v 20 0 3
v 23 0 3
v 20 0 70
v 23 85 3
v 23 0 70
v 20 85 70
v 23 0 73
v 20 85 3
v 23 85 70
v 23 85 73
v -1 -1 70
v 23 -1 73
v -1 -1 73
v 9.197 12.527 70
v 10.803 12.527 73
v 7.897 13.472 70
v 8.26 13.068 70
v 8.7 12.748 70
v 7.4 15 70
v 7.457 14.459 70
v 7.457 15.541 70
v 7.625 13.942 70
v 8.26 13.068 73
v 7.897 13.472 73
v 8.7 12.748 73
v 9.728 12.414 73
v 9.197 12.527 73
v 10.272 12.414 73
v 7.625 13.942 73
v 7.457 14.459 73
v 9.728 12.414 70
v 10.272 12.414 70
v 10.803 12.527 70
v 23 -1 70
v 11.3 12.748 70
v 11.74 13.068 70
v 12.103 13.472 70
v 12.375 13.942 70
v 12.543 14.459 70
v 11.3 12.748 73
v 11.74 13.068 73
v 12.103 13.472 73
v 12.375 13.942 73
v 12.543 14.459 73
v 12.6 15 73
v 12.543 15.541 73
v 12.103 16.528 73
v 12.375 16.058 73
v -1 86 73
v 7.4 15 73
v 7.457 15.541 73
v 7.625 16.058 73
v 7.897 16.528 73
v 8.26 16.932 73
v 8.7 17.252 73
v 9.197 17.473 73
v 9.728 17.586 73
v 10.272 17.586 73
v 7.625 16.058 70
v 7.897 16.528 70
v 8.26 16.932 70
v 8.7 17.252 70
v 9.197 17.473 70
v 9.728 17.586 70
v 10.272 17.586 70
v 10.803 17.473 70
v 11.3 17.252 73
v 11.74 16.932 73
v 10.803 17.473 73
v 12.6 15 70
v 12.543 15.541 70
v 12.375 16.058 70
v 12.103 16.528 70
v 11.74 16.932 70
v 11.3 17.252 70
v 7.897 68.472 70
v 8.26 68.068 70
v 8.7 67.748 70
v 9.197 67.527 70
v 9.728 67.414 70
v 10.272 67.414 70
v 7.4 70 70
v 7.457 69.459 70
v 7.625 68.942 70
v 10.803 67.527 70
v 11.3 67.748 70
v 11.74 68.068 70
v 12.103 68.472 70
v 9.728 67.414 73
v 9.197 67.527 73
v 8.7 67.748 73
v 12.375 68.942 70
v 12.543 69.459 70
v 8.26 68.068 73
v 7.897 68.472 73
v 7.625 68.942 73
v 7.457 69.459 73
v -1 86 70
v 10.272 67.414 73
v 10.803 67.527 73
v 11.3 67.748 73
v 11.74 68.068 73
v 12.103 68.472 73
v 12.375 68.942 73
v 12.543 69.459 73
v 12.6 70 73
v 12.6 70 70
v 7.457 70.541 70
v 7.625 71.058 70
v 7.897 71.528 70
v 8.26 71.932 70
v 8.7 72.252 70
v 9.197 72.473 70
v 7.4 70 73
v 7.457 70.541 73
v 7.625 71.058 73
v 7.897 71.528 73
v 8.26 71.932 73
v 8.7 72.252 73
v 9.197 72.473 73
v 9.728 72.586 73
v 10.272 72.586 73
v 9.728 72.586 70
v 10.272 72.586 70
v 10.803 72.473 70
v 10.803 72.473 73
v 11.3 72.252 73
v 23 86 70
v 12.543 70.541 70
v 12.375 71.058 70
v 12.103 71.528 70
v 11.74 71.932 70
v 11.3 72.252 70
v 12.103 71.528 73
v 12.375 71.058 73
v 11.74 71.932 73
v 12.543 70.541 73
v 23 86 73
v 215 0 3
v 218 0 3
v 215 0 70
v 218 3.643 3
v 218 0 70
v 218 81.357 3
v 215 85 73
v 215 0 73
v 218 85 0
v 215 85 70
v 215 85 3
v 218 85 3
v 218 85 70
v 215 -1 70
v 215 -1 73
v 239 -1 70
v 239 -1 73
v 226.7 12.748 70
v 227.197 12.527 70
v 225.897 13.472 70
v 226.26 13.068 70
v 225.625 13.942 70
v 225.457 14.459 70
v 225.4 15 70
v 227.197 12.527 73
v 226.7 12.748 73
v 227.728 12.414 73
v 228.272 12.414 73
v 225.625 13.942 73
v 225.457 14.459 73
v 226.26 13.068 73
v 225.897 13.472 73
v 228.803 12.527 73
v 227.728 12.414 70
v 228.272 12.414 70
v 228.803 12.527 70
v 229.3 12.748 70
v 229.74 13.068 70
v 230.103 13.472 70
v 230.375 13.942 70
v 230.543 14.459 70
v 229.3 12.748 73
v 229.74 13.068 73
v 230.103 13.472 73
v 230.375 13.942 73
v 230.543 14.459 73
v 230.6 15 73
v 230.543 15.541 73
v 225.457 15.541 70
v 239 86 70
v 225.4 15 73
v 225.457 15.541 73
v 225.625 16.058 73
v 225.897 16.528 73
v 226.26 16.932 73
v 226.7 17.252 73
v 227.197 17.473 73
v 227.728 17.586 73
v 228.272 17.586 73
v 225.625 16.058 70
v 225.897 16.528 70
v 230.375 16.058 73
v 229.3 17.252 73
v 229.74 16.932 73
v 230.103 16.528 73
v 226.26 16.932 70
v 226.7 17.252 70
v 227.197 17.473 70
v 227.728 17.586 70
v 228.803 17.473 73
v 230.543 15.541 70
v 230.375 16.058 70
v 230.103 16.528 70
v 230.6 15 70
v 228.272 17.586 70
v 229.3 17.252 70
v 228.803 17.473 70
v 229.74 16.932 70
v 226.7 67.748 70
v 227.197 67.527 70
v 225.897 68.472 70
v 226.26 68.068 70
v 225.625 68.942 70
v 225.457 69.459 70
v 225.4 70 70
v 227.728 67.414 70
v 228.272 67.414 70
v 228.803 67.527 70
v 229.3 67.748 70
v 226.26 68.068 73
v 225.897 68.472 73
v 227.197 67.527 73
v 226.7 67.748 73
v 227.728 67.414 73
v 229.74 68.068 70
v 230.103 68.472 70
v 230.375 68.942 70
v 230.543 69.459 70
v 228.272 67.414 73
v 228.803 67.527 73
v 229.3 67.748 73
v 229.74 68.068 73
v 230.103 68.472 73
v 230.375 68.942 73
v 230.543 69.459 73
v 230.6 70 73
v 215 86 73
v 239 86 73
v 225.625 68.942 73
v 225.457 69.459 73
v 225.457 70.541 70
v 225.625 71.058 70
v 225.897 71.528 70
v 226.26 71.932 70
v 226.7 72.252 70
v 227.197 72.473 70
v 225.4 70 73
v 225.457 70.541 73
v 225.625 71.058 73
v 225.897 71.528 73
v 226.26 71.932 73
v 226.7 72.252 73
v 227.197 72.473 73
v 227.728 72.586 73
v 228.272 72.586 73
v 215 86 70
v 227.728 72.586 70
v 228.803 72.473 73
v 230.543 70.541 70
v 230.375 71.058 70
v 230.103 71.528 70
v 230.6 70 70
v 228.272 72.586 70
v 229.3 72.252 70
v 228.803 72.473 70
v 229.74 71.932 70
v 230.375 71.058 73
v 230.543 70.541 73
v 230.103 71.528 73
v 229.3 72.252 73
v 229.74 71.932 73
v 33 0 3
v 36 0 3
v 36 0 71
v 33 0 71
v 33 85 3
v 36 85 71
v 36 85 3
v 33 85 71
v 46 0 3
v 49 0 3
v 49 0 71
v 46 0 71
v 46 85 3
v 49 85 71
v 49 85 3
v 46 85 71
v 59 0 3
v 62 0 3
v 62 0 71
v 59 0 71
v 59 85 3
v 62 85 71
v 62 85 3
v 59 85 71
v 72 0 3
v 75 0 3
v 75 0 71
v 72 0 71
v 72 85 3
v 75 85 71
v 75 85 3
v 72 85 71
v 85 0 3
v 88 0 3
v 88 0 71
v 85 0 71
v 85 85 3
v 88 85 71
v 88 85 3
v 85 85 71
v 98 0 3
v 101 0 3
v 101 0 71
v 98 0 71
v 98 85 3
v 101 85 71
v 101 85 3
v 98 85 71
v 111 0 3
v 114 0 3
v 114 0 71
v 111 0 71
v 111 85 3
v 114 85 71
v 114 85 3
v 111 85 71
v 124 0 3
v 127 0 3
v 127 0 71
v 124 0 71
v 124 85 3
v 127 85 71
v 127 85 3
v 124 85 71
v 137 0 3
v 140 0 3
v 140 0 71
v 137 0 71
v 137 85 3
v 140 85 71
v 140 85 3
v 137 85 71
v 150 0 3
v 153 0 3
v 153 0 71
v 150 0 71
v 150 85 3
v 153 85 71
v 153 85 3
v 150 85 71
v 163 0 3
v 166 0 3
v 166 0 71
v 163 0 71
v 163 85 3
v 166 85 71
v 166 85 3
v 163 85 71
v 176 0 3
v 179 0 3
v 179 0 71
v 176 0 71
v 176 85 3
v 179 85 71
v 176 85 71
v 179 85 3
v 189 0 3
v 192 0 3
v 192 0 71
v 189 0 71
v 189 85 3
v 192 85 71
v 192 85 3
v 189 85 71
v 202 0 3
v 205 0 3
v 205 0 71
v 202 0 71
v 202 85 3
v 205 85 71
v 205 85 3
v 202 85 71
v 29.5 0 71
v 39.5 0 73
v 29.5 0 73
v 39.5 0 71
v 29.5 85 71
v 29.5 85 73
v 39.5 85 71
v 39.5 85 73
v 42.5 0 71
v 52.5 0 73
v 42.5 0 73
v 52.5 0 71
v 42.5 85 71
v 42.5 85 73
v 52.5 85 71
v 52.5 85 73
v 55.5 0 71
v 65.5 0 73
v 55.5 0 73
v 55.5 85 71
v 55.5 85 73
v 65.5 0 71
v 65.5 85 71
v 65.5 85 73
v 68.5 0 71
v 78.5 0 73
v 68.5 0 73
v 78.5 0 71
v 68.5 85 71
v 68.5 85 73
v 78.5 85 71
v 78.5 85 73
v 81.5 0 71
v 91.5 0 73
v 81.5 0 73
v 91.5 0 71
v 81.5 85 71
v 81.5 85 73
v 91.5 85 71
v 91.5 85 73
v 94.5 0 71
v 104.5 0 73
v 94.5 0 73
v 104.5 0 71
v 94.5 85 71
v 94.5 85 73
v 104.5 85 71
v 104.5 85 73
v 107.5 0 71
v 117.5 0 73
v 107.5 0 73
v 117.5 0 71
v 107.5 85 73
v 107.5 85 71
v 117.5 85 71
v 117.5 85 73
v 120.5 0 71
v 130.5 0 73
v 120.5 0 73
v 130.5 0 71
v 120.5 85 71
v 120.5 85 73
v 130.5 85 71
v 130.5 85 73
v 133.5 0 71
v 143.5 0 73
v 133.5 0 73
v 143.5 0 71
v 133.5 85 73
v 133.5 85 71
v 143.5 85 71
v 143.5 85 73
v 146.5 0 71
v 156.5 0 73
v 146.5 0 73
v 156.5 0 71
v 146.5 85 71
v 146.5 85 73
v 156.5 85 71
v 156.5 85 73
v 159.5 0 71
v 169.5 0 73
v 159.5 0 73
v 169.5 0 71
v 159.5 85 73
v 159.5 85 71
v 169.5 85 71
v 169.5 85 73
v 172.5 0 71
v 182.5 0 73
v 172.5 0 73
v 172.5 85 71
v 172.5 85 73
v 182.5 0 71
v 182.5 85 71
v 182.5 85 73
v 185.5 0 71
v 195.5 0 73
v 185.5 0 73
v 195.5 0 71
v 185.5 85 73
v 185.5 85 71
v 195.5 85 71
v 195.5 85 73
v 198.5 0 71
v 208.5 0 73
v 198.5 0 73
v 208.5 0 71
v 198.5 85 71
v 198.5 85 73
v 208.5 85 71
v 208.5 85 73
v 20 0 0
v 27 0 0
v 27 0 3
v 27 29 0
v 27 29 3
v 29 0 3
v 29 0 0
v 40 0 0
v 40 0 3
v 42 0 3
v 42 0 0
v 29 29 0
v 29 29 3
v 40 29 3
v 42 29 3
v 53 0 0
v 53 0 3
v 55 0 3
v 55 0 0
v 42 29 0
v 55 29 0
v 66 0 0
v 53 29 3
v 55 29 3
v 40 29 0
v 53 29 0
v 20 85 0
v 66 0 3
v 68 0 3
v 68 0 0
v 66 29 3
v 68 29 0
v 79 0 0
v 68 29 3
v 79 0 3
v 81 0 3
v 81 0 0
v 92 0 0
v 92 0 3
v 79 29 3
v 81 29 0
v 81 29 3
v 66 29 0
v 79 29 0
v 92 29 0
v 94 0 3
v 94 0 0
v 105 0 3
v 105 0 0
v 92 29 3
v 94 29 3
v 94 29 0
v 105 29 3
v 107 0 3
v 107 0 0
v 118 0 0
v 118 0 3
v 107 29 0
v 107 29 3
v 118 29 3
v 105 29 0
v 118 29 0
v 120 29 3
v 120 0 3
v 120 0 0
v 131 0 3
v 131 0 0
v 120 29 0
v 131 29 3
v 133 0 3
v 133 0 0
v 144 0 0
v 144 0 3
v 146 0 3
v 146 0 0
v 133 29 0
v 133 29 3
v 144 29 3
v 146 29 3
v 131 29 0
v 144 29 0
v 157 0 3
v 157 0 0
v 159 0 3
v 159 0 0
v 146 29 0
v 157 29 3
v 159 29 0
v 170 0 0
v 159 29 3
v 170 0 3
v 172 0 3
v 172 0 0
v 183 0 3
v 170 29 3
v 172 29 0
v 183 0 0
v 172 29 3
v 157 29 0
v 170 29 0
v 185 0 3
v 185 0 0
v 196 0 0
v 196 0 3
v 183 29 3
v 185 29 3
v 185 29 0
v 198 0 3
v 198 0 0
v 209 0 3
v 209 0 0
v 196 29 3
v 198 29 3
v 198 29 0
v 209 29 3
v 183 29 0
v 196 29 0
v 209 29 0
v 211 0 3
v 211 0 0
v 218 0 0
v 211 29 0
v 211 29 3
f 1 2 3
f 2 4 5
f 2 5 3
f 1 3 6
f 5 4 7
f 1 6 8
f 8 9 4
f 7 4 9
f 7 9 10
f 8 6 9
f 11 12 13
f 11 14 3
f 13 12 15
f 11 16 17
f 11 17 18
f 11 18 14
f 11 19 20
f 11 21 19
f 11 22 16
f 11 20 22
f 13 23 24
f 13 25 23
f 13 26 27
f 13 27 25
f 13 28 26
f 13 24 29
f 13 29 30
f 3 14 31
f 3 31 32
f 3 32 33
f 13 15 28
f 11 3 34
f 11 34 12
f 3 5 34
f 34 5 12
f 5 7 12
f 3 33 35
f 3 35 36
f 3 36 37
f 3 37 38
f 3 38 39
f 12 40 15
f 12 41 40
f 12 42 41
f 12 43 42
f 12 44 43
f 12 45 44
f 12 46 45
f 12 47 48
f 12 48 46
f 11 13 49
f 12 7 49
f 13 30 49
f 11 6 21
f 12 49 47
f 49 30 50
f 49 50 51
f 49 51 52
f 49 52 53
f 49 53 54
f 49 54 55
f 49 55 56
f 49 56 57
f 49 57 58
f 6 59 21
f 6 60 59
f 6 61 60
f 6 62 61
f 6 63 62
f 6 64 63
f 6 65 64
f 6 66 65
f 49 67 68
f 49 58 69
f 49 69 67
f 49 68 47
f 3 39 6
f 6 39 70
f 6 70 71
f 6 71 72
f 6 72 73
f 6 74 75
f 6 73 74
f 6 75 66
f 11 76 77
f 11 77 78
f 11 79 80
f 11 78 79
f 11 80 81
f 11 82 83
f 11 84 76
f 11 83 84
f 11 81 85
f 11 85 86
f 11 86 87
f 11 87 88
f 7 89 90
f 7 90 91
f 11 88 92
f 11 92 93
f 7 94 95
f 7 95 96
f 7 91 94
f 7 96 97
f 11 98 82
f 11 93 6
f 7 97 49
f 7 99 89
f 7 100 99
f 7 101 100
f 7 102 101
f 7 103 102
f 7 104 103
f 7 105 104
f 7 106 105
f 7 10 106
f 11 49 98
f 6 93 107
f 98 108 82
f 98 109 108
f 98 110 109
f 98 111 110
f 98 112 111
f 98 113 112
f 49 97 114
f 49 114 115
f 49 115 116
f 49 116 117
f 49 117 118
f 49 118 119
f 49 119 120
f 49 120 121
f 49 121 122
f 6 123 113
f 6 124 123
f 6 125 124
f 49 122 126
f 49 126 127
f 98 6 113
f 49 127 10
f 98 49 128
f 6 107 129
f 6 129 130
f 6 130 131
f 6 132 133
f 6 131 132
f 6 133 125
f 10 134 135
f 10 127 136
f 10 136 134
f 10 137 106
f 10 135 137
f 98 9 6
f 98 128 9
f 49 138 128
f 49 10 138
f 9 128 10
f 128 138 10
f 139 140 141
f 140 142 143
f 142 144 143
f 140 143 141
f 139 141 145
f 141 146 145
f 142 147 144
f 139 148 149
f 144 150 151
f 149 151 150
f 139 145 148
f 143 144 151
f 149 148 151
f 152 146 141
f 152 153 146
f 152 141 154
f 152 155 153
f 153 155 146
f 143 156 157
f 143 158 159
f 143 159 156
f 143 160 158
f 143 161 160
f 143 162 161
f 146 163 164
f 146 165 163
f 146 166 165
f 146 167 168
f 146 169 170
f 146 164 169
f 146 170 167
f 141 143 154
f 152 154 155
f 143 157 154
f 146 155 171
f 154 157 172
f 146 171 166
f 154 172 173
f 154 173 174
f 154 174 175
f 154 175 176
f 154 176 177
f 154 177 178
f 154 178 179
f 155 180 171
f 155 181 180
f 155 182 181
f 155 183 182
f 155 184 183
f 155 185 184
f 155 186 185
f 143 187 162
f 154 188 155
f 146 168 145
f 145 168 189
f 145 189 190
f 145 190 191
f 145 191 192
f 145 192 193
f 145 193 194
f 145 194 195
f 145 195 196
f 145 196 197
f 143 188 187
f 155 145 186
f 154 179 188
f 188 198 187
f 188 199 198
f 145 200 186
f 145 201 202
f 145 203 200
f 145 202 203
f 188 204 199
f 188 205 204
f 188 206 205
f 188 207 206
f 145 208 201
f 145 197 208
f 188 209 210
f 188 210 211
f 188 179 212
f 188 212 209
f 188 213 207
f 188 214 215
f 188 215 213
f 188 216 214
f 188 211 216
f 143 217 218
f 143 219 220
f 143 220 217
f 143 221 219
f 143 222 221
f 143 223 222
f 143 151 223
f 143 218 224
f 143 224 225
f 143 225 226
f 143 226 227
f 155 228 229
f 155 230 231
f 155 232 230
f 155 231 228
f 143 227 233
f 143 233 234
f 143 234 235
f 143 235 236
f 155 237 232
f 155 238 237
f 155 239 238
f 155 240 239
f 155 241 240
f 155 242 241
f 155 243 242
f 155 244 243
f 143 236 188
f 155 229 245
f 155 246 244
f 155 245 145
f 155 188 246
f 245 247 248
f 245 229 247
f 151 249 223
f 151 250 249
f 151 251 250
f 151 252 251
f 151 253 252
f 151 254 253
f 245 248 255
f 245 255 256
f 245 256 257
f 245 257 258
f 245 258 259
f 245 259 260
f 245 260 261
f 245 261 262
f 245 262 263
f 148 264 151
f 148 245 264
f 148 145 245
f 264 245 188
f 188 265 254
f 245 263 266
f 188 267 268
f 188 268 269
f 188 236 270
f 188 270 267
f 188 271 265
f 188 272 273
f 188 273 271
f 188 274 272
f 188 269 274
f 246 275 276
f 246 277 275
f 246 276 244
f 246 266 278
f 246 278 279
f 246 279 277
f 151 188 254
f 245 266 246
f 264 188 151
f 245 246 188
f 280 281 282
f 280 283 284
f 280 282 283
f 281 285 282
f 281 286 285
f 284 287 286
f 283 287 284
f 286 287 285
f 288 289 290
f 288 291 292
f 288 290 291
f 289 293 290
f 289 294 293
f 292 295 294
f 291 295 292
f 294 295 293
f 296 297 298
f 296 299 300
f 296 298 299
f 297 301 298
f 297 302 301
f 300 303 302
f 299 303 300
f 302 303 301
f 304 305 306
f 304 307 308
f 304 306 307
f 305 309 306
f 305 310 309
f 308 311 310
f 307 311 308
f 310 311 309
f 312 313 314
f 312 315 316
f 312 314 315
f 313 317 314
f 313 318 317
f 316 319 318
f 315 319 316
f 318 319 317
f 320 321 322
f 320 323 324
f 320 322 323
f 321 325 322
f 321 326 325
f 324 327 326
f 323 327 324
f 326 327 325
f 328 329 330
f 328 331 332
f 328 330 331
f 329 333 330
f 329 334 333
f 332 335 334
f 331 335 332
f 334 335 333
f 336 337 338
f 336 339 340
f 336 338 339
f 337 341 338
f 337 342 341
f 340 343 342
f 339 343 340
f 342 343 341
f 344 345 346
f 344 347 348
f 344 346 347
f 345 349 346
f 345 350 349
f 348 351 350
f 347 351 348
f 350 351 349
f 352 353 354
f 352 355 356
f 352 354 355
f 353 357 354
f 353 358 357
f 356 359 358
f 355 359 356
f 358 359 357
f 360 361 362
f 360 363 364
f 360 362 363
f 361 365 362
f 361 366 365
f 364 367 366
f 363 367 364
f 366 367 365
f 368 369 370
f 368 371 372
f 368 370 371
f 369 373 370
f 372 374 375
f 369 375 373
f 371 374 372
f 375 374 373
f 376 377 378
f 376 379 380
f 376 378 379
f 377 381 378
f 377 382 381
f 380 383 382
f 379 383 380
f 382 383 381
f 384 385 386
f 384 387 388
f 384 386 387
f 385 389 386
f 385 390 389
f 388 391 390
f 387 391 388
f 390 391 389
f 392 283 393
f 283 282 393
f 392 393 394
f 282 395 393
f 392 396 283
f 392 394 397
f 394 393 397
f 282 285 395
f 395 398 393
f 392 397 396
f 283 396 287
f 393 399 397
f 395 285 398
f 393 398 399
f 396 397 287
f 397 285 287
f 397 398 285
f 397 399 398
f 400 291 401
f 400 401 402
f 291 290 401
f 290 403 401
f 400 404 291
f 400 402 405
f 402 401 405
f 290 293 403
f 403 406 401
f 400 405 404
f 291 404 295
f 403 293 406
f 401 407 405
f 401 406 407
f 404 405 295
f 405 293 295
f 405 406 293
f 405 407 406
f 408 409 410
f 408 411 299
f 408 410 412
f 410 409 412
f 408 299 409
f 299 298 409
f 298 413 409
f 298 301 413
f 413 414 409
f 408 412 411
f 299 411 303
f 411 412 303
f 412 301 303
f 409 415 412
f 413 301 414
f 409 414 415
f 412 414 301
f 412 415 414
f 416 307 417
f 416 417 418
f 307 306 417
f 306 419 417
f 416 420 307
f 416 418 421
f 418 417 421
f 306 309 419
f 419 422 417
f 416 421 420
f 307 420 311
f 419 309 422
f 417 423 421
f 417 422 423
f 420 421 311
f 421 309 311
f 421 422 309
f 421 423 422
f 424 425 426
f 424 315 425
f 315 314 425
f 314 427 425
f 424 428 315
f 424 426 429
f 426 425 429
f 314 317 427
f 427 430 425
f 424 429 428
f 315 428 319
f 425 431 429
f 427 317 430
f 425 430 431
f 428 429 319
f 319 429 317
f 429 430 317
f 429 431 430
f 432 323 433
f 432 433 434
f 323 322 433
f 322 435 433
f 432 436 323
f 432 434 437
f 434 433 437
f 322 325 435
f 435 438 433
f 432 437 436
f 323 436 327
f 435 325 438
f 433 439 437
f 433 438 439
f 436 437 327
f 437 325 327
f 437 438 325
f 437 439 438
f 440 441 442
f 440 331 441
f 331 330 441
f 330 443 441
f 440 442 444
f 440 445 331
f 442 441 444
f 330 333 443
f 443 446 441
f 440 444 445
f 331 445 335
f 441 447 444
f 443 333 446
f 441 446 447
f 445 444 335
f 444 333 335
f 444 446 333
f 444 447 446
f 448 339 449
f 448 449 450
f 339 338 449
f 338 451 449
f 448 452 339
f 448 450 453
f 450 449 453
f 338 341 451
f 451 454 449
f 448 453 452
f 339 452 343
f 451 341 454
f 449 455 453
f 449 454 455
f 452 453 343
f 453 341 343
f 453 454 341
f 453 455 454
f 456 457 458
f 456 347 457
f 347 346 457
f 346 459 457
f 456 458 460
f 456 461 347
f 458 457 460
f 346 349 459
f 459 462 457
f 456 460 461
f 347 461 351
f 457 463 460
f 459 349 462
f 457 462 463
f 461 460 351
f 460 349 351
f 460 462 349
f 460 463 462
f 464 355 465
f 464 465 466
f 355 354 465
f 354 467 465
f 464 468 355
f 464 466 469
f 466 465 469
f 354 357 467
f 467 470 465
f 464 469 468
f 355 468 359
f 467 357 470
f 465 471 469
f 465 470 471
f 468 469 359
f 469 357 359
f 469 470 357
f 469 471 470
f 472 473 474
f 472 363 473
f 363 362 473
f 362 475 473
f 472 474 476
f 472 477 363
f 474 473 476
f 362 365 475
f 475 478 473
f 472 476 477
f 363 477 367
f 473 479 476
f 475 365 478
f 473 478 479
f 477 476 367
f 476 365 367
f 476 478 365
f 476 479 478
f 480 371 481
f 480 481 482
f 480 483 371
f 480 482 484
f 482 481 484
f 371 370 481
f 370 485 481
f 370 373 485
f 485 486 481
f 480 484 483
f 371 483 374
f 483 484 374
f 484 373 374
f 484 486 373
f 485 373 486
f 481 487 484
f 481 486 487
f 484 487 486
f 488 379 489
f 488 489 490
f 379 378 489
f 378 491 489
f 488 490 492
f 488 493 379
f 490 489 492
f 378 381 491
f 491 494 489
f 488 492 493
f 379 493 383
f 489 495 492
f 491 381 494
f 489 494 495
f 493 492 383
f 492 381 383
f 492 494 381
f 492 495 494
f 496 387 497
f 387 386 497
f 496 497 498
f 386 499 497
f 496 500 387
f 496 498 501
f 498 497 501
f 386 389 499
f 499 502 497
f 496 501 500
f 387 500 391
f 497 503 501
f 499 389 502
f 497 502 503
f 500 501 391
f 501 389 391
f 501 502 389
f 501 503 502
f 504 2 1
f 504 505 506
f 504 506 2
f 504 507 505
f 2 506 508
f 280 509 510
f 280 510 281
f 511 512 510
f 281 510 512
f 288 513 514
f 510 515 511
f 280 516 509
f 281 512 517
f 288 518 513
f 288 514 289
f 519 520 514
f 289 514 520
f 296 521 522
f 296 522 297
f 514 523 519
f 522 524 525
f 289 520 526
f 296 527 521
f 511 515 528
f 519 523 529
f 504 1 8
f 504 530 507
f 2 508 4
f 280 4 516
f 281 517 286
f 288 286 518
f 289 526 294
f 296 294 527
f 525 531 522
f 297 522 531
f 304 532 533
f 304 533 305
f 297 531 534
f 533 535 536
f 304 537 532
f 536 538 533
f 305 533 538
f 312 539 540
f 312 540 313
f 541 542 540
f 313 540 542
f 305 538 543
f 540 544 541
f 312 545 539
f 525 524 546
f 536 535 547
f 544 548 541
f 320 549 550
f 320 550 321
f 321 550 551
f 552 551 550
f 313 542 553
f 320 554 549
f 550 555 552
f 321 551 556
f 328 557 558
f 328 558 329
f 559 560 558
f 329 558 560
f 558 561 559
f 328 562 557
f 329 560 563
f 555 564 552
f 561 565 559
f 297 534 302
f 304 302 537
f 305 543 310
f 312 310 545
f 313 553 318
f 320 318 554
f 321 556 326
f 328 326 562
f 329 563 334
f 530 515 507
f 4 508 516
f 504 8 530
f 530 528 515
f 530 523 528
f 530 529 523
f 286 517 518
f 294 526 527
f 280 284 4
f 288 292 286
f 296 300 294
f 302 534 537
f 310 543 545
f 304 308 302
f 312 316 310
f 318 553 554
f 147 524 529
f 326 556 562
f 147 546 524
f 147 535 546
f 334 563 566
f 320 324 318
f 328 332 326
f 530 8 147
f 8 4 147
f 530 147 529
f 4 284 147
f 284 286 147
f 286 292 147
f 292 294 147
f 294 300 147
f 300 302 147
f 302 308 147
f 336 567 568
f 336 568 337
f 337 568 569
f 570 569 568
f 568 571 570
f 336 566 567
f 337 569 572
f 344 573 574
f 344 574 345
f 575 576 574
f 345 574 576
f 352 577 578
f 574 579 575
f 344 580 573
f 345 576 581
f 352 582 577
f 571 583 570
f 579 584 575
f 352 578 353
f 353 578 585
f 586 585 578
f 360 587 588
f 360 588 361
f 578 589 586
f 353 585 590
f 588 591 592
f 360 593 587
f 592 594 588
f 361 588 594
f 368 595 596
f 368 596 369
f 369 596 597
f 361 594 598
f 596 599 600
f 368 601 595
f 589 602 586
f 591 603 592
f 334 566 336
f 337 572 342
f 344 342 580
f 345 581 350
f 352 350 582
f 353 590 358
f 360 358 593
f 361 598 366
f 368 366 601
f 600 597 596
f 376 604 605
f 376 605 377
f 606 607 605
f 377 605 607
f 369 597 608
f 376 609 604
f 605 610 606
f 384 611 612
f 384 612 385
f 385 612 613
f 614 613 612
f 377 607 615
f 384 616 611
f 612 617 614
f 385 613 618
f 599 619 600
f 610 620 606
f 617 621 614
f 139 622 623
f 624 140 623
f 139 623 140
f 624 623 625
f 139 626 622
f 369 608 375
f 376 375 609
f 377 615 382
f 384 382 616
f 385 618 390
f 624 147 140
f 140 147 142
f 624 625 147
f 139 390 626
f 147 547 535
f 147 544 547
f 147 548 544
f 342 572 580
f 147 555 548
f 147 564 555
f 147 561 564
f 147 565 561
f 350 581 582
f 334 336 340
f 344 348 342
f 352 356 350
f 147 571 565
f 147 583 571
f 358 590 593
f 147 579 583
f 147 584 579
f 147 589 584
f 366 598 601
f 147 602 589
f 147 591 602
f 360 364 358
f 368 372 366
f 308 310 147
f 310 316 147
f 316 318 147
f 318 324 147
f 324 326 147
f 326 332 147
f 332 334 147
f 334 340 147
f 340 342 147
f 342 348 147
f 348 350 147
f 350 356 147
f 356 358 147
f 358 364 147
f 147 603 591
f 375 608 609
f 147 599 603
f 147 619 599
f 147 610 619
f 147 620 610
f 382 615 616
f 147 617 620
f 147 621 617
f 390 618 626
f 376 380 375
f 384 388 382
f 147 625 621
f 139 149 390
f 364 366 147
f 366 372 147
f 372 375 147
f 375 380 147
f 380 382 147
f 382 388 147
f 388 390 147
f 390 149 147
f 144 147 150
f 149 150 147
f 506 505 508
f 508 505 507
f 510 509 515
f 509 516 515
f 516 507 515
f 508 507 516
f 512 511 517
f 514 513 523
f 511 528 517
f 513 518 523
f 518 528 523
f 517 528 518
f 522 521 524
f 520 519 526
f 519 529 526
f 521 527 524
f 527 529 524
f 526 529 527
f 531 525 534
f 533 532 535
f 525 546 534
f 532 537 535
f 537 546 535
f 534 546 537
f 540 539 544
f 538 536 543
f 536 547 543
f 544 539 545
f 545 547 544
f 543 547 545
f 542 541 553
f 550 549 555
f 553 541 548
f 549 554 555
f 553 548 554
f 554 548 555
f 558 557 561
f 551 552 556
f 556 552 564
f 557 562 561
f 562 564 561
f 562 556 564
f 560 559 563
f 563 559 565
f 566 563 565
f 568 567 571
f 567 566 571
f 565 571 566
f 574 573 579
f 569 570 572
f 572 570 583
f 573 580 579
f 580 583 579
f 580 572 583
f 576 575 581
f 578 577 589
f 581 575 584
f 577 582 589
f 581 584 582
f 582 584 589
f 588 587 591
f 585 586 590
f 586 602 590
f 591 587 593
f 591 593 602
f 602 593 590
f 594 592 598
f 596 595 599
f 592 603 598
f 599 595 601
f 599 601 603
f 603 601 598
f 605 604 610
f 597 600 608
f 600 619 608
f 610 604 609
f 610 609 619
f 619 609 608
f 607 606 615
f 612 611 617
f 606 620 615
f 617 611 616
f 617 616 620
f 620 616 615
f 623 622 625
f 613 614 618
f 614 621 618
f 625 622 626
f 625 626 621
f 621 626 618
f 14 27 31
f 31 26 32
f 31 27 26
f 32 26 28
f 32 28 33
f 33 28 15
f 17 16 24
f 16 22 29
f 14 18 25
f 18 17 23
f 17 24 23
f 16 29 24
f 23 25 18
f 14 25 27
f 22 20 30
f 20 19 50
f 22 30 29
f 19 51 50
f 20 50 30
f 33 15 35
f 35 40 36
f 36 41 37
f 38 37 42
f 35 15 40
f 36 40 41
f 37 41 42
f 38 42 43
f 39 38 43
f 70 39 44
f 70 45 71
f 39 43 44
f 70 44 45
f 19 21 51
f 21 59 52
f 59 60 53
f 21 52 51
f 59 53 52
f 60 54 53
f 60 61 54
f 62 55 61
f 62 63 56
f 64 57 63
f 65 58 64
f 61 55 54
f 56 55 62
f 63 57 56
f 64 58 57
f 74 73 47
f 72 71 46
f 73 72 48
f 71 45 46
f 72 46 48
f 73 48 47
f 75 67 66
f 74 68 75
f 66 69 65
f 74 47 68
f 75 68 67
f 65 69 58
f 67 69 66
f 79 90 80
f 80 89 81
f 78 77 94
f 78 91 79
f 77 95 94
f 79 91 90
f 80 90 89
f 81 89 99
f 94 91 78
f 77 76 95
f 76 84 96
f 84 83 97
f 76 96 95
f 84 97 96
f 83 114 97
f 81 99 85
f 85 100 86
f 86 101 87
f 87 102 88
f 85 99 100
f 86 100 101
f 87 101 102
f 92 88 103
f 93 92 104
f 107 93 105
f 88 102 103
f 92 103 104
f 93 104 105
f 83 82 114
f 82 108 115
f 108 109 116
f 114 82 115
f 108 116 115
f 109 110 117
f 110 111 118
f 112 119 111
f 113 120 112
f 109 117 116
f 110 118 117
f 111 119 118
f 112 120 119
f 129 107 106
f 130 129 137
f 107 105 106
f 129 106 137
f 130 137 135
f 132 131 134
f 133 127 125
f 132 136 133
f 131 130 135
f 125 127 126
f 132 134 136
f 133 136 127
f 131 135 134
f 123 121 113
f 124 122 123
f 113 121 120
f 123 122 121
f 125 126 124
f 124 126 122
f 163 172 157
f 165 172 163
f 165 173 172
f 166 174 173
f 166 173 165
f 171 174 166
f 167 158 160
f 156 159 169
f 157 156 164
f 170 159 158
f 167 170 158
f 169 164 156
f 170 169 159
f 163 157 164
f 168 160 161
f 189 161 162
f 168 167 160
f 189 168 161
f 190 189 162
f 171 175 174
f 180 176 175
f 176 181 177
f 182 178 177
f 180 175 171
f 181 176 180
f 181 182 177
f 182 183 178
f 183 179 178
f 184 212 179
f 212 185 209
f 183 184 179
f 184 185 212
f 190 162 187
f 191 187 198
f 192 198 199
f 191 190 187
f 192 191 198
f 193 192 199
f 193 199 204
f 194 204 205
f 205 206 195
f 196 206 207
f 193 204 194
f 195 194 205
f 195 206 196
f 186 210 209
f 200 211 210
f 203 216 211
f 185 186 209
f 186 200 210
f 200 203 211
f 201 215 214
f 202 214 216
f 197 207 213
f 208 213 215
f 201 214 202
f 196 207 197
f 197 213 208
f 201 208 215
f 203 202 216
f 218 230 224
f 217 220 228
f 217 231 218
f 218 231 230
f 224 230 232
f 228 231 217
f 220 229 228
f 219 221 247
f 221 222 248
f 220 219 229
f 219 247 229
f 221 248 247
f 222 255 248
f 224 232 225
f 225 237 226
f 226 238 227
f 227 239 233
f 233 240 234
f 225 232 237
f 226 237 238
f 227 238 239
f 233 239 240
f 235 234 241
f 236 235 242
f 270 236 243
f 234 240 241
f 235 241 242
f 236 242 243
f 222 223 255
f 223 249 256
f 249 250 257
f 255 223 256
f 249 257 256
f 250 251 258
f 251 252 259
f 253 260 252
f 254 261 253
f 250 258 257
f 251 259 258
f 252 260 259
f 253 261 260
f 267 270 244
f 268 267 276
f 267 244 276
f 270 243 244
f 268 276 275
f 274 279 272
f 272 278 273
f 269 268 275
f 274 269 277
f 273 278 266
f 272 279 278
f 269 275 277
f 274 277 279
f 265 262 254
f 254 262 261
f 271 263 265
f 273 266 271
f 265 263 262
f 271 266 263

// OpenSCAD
// DrugShelf.scad - 6槽U型架，用于倒挂安装在柜子顶部
// 从侧面看是UUUUUU形状，前后开放，底部带安装耳朵
// 倒挂安装：耳朵在底部（Z=0处）用于固定

// 参数定义
wall_thickness = 3;           // 壁厚3mm
slot_internal_width = 10;     // U型槽内宽10mm（有效空间）
slot_height = 70;             // U型槽高度70mm（有效空间）
total_depth = 85;             // 总体深度85mm（有效空间）
num_slots = 15;               // 15组U型槽（最大，总宽238mm）
ear_width = 20;               // 耳朵宽度2cm=20mm
ear_height = 3;               // 耳朵高度3mm
screw_hole_diameter = 5.2;    // M4螺丝孔直径(留打印误差空间)
notch_depth_y = 28;           // 单边口Y轴方向深度28mm（约1/3总深度85mm）
notch_width = 2;              // 单边口宽度2mm

// 计算总宽度
slot_spacing = slot_internal_width + wall_thickness;  // 槽间距（内宽+壁厚）
total_width = 2 * ear_width + wall_thickness + num_slots * slot_spacing;

// 主体模块 - U型架主体（前后开放，从侧面看是UUUUUU）
module shelf_body() {
    difference() {
        union() {
            // 中间U型槽区域的底板（只在U型槽区域，不包括耳朵）
            translate([ear_width, 0, 0])
                cube([total_width - 2 * ear_width, total_depth, wall_thickness]);
            
            // 左侧壁 + 耳朵一体结构（倒L型）
            union() {
                // 左侧壁（从底部Z=0到Z=23）
                translate([ear_width, 0, 0])
                    cube([wall_thickness, total_depth, slot_height + wall_thickness]);
                // 左耳朵（在左壁顶部向外延伸，顶面与中间隔板齐平Z=23）
                translate([-1, -1, slot_height])
                    cube([ear_width + wall_thickness + 1, total_depth + 2, ear_height]);
            }
            
            // 右侧壁 + 耳朵一体结构（倒L型）
            union() {
                // 右侧壁（从底部Z=0到Z=23）
                translate([total_width - ear_width - wall_thickness, 0, 0])
                    cube([wall_thickness, total_depth, slot_height + wall_thickness]);
                // 右耳朵（在右壁顶部向外延伸，顶面与中间隔板齐平Z=23）
                translate([total_width - ear_width - wall_thickness, -1, slot_height])
                    cube([ear_width + wall_thickness + 1, total_depth + 2, ear_height]);
            }
            
            // 中间隔板（5个分隔6个U型槽，从底板Z=3到Z=23）
            for (i = [1 : num_slots - 1]) {
                translate([ear_width + wall_thickness + i * slot_spacing - wall_thickness, 0, wall_thickness])
                    cube([wall_thickness, total_depth, slot_height]);
            }
            
            // 中间隔板顶部粘接壁（5个，从Z=21到Z=23，宽度10mm，厚度2mm）
            for (i = [1 : num_slots - 1]) {
                x_pos = ear_width + wall_thickness + i * slot_spacing - wall_thickness;
                // 粘接壁居中于隔板，向两侧各延伸(10-3)/2 = 3.5mm
                translate([x_pos - 3.5, 0, slot_height + wall_thickness - 2])
                    cube([10, total_depth, 2]);
            }
        }
        
        // 在每个U型槽底部前侧创建单边口
        for (i = [0 : num_slots - 1]) {
            x_pos = ear_width + wall_thickness + i * slot_spacing;
            // 在U型槽底部中心位置创建缺口
            // Y轴：从前面挖1/3深度（20mm），超出边界
            // Z轴：从Z=-1到Z=wall_thickness+1，完全穿透3mm底板并超出
            translate([
                x_pos + slot_internal_width / 2 - notch_width / 2, 
                -1, 
                -1
            ])
                cube([notch_width, notch_depth_y + 2, wall_thickness + 3]);
        }
        
        // 左侧耳朵螺丝孔（Z轴方向垂直穿过耳朵）
        // 耳朵在Z=20到Z=23，螺丝孔中心在Z=21.5
        translate([ear_width / 2, 15, slot_height + ear_height / 2])
            cylinder(h = ear_height + 4, d = screw_hole_diameter, $fn=30, center = true);
        translate([ear_width / 2, total_depth - 15, slot_height + ear_height / 2])
            cylinder(h = ear_height + 4, d = screw_hole_diameter, $fn=30, center = true);
        
        // 右侧耳朵螺丝孔（Z轴方向垂直穿过耳朵）
        translate([total_width - ear_width / 2, 15, slot_height + ear_height / 2])
            cylinder(h = ear_height + 4, d = screw_hole_diameter, $fn=30, center = true);
        translate([total_width - ear_width / 2, total_depth - 15, slot_height + ear_height / 2])
            cylinder(h = ear_height + 4, d = screw_hole_diameter, $fn=30, center = true);
    }
}

// 渲染完整架子
shelf_body();

// 显示尺寸信息
echo(str("总宽度: ", total_width, "mm"));
echo(str("总深度: ", total_depth, "mm"));
echo(str("总高度: ", slot_height + wall_thickness + ear_height, "mm"));
echo(str("单个U型槽内宽: ", slot_internal_width, "mm"));
echo(str("U型槽高度: ", slot_height, "mm"));
echo(str("耳朵宽度: ", ear_width, "mm"));
echo(str("耳朵高度: ", ear_height, "mm"));
